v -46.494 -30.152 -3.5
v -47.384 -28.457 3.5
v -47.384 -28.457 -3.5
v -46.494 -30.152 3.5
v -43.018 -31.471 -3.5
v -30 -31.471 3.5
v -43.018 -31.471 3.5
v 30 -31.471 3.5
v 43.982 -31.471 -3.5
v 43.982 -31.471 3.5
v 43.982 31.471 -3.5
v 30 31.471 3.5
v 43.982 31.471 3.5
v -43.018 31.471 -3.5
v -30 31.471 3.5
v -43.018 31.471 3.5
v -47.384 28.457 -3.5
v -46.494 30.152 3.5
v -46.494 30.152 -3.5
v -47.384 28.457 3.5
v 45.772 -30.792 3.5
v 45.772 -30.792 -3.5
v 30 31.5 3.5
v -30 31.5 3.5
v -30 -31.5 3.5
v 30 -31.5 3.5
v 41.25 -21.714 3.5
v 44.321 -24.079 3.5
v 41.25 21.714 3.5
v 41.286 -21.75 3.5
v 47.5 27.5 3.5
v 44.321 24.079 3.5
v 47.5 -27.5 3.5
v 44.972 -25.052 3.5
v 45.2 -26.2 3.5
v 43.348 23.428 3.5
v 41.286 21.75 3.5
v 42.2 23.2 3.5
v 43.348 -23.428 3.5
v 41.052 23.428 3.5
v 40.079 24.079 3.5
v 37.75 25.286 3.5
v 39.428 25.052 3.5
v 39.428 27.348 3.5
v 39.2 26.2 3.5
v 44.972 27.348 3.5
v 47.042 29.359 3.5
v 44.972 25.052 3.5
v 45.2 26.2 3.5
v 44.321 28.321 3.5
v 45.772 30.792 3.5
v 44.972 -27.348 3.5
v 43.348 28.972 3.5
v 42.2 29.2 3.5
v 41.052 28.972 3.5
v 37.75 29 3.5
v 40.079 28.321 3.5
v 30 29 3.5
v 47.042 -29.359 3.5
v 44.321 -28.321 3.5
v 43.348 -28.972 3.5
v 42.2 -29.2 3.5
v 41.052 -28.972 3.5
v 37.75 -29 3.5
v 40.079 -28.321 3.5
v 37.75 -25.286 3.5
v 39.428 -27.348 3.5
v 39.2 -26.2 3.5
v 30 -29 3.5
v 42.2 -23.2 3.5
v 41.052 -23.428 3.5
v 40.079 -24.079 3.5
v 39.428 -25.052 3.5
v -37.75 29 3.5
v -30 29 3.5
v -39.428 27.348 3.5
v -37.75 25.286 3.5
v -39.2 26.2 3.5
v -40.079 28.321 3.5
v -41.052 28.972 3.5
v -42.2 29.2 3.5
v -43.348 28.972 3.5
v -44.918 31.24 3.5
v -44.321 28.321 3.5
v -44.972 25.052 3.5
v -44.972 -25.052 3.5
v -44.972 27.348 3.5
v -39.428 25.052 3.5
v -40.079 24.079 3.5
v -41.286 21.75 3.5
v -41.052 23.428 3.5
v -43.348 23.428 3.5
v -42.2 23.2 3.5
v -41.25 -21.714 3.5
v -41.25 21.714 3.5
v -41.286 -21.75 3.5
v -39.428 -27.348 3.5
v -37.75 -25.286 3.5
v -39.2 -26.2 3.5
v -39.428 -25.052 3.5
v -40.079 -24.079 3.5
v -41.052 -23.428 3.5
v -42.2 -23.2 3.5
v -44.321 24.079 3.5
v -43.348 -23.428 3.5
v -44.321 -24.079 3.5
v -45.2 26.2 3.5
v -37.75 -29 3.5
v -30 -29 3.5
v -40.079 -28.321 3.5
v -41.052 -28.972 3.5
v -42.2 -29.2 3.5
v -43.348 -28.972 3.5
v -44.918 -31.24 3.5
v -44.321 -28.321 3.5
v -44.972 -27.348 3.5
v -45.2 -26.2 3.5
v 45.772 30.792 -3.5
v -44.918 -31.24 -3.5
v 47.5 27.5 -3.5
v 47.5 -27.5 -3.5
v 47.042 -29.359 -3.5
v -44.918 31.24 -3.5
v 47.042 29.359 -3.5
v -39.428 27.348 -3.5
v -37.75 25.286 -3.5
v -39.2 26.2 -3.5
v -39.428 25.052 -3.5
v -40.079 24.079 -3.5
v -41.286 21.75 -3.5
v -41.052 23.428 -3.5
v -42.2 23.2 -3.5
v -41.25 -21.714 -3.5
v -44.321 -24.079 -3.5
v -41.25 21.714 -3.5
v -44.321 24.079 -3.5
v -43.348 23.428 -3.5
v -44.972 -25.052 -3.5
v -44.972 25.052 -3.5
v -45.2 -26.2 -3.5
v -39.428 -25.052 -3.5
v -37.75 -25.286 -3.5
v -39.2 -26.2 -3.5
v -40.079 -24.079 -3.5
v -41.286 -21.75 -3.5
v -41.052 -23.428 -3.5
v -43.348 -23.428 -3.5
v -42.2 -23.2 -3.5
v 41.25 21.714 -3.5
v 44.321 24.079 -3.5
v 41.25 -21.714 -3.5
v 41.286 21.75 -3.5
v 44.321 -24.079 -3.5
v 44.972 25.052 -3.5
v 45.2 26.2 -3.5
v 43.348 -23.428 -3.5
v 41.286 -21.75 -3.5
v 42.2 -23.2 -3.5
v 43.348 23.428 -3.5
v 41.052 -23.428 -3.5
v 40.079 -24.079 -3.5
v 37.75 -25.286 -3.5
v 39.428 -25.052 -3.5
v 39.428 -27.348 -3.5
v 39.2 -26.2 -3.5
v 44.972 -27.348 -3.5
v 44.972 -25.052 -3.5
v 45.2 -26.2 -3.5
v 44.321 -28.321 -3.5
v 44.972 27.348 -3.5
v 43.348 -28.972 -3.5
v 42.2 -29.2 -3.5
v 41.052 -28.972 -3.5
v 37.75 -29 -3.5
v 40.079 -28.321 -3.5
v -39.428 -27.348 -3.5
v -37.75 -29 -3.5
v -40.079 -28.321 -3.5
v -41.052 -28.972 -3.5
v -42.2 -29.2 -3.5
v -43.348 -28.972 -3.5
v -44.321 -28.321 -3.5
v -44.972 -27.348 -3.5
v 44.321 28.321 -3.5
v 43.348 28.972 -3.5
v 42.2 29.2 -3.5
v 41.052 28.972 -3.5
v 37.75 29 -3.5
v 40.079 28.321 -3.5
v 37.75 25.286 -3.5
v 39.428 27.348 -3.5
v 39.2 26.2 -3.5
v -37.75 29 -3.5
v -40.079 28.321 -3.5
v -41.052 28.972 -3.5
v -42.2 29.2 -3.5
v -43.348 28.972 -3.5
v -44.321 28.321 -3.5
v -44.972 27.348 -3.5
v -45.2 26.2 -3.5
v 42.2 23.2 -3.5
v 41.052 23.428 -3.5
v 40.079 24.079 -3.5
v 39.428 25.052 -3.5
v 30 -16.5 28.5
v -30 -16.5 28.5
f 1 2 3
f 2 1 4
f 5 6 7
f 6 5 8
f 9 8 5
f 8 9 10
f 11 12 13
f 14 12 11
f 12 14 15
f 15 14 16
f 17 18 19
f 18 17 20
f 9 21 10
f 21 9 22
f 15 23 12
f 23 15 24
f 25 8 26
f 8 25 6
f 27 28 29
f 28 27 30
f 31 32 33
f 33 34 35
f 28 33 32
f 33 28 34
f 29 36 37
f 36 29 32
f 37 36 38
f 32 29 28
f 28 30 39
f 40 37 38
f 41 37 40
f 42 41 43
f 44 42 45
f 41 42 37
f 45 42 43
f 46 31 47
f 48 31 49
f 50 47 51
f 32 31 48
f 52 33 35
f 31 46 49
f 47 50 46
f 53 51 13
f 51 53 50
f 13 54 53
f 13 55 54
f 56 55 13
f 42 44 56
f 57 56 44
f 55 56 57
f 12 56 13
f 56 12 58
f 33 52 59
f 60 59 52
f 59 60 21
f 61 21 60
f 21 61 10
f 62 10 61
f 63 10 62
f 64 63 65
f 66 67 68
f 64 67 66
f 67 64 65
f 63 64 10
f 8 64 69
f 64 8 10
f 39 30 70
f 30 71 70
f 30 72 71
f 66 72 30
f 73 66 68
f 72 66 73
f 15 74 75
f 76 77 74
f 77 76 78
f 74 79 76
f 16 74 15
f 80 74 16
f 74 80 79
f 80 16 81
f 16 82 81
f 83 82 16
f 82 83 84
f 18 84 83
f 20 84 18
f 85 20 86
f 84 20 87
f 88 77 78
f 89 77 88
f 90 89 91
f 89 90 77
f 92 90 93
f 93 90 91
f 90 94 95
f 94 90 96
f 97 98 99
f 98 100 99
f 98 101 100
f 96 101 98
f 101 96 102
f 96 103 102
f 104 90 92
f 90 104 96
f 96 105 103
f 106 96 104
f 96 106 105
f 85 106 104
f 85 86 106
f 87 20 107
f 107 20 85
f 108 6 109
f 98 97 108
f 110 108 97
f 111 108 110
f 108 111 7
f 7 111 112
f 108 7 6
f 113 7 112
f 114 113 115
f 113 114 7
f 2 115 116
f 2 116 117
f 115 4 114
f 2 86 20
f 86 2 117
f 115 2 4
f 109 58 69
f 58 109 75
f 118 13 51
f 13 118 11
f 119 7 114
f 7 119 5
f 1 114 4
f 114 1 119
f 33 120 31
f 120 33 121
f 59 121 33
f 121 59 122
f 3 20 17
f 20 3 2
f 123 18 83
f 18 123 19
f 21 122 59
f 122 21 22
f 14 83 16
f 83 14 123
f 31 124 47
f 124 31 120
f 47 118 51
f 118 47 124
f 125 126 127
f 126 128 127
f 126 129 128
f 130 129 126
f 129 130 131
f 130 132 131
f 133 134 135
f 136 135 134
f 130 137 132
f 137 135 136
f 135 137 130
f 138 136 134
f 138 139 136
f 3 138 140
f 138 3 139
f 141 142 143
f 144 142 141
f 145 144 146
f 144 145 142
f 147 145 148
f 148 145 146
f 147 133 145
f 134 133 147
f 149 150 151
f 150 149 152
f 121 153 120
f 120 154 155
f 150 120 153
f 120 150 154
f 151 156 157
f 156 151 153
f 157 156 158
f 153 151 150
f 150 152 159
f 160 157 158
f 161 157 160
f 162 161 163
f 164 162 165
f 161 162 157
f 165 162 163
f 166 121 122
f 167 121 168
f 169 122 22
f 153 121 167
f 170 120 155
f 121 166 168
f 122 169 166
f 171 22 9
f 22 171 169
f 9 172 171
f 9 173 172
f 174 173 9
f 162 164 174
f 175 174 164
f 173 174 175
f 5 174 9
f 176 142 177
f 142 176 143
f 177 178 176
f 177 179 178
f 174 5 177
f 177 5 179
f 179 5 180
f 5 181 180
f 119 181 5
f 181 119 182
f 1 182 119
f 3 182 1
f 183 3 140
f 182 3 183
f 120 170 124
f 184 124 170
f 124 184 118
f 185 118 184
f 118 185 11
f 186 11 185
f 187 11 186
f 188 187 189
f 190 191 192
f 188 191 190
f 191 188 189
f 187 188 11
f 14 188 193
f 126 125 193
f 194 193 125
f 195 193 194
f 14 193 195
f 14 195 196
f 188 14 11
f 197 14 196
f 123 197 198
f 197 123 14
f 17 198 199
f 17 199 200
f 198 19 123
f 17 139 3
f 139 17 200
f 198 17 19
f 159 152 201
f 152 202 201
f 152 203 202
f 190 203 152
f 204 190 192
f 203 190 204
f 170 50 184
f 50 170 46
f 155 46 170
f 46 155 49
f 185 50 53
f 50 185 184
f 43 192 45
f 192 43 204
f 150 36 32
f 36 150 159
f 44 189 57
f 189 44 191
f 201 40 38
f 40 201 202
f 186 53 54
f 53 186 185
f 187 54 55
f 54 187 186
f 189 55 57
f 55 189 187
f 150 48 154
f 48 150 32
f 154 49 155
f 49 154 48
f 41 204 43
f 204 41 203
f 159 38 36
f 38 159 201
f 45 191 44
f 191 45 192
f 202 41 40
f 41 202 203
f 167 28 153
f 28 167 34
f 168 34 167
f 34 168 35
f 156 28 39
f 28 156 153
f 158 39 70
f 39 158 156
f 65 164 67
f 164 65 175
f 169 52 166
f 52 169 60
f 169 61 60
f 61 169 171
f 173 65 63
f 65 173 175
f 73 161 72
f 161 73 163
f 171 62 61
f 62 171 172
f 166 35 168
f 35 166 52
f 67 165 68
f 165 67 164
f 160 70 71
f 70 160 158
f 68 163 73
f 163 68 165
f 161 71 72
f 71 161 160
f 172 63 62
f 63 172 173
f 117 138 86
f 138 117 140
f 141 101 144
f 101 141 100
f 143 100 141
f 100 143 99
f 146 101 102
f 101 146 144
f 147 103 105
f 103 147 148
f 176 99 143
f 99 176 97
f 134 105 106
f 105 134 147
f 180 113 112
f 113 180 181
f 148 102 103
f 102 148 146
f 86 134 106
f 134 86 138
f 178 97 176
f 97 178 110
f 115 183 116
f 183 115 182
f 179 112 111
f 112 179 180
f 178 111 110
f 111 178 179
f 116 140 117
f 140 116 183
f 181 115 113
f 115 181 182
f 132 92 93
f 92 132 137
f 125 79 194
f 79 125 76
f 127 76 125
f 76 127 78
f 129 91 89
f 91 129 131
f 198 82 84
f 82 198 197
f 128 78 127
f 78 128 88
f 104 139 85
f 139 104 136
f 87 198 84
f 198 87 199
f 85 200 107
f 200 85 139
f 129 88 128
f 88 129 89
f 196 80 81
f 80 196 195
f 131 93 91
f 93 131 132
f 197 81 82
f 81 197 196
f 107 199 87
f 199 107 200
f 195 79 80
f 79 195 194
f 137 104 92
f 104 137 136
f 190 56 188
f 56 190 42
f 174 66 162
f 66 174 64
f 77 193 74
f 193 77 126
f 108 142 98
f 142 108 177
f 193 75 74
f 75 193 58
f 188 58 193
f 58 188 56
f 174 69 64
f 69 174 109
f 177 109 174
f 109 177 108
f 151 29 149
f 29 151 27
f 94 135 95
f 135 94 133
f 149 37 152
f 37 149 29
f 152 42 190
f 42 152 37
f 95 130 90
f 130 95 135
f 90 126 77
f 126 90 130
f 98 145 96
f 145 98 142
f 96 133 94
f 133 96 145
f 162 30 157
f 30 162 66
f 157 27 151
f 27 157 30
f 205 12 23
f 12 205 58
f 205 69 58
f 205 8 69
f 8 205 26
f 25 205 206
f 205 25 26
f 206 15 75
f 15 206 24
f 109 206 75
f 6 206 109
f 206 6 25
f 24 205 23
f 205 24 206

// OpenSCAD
w = 95;
p = 63;
//h = 4.8;
h = 7;
r = 4;

difference() {
	minkowski() {
		translate([0,0,-.5])
			cube([w-r*2,p-r*2, h-1], true);
		cylinder(1,r,r);
	}
	
  hole = (5.5+.5)/2;
  translate([w/2-8.3+hole, p/2-8.3+hole, 0])
	  cylinder(h+2,hole,hole, true, $fn=16);
  translate([w/2-8.3+hole, -(p/2-8.3+hole), 0])
	  cylinder(h+2,hole,hole, true, $fn=16);
  translate([-(w/2-8.3+hole), -(p/2-8.3+hole), 0])
	  cylinder(h+2,hole,hole, true, $fn=16);
  translate([-(w/2-8.3+hole), (p/2-8.3+hole), 0])
	  cylinder(h+2,hole,hole, true, $fn=16);
	cube([75.5,58,h+2], true);
	cube([82.5,43.5,h+2], true);

	translate([75.5/2,43.5/2,0])
		rotate([0,0,45])
			cube([5,5,h+2], true);
	translate([-75.5/2,43.5/2,0])
		rotate([0,0,45])
			cube([5,5,h+2], true);
	translate([-75.5/2,-43.5/2,0])
		rotate([0,0,45])
			cube([5,5,h+2], true);
	translate([75.5/2,-43.5/2,0])
		rotate([0,0,45])
			cube([5,5,h+2], true);

}


color("red")
	translate([60/2,-p/2,h/2])
		rotate([0,-90,0])
			linear_extrude(60)
				polygon([[0,0],[0,p],[25,15]]);
//	cube([82.5,43.5,5], true);
